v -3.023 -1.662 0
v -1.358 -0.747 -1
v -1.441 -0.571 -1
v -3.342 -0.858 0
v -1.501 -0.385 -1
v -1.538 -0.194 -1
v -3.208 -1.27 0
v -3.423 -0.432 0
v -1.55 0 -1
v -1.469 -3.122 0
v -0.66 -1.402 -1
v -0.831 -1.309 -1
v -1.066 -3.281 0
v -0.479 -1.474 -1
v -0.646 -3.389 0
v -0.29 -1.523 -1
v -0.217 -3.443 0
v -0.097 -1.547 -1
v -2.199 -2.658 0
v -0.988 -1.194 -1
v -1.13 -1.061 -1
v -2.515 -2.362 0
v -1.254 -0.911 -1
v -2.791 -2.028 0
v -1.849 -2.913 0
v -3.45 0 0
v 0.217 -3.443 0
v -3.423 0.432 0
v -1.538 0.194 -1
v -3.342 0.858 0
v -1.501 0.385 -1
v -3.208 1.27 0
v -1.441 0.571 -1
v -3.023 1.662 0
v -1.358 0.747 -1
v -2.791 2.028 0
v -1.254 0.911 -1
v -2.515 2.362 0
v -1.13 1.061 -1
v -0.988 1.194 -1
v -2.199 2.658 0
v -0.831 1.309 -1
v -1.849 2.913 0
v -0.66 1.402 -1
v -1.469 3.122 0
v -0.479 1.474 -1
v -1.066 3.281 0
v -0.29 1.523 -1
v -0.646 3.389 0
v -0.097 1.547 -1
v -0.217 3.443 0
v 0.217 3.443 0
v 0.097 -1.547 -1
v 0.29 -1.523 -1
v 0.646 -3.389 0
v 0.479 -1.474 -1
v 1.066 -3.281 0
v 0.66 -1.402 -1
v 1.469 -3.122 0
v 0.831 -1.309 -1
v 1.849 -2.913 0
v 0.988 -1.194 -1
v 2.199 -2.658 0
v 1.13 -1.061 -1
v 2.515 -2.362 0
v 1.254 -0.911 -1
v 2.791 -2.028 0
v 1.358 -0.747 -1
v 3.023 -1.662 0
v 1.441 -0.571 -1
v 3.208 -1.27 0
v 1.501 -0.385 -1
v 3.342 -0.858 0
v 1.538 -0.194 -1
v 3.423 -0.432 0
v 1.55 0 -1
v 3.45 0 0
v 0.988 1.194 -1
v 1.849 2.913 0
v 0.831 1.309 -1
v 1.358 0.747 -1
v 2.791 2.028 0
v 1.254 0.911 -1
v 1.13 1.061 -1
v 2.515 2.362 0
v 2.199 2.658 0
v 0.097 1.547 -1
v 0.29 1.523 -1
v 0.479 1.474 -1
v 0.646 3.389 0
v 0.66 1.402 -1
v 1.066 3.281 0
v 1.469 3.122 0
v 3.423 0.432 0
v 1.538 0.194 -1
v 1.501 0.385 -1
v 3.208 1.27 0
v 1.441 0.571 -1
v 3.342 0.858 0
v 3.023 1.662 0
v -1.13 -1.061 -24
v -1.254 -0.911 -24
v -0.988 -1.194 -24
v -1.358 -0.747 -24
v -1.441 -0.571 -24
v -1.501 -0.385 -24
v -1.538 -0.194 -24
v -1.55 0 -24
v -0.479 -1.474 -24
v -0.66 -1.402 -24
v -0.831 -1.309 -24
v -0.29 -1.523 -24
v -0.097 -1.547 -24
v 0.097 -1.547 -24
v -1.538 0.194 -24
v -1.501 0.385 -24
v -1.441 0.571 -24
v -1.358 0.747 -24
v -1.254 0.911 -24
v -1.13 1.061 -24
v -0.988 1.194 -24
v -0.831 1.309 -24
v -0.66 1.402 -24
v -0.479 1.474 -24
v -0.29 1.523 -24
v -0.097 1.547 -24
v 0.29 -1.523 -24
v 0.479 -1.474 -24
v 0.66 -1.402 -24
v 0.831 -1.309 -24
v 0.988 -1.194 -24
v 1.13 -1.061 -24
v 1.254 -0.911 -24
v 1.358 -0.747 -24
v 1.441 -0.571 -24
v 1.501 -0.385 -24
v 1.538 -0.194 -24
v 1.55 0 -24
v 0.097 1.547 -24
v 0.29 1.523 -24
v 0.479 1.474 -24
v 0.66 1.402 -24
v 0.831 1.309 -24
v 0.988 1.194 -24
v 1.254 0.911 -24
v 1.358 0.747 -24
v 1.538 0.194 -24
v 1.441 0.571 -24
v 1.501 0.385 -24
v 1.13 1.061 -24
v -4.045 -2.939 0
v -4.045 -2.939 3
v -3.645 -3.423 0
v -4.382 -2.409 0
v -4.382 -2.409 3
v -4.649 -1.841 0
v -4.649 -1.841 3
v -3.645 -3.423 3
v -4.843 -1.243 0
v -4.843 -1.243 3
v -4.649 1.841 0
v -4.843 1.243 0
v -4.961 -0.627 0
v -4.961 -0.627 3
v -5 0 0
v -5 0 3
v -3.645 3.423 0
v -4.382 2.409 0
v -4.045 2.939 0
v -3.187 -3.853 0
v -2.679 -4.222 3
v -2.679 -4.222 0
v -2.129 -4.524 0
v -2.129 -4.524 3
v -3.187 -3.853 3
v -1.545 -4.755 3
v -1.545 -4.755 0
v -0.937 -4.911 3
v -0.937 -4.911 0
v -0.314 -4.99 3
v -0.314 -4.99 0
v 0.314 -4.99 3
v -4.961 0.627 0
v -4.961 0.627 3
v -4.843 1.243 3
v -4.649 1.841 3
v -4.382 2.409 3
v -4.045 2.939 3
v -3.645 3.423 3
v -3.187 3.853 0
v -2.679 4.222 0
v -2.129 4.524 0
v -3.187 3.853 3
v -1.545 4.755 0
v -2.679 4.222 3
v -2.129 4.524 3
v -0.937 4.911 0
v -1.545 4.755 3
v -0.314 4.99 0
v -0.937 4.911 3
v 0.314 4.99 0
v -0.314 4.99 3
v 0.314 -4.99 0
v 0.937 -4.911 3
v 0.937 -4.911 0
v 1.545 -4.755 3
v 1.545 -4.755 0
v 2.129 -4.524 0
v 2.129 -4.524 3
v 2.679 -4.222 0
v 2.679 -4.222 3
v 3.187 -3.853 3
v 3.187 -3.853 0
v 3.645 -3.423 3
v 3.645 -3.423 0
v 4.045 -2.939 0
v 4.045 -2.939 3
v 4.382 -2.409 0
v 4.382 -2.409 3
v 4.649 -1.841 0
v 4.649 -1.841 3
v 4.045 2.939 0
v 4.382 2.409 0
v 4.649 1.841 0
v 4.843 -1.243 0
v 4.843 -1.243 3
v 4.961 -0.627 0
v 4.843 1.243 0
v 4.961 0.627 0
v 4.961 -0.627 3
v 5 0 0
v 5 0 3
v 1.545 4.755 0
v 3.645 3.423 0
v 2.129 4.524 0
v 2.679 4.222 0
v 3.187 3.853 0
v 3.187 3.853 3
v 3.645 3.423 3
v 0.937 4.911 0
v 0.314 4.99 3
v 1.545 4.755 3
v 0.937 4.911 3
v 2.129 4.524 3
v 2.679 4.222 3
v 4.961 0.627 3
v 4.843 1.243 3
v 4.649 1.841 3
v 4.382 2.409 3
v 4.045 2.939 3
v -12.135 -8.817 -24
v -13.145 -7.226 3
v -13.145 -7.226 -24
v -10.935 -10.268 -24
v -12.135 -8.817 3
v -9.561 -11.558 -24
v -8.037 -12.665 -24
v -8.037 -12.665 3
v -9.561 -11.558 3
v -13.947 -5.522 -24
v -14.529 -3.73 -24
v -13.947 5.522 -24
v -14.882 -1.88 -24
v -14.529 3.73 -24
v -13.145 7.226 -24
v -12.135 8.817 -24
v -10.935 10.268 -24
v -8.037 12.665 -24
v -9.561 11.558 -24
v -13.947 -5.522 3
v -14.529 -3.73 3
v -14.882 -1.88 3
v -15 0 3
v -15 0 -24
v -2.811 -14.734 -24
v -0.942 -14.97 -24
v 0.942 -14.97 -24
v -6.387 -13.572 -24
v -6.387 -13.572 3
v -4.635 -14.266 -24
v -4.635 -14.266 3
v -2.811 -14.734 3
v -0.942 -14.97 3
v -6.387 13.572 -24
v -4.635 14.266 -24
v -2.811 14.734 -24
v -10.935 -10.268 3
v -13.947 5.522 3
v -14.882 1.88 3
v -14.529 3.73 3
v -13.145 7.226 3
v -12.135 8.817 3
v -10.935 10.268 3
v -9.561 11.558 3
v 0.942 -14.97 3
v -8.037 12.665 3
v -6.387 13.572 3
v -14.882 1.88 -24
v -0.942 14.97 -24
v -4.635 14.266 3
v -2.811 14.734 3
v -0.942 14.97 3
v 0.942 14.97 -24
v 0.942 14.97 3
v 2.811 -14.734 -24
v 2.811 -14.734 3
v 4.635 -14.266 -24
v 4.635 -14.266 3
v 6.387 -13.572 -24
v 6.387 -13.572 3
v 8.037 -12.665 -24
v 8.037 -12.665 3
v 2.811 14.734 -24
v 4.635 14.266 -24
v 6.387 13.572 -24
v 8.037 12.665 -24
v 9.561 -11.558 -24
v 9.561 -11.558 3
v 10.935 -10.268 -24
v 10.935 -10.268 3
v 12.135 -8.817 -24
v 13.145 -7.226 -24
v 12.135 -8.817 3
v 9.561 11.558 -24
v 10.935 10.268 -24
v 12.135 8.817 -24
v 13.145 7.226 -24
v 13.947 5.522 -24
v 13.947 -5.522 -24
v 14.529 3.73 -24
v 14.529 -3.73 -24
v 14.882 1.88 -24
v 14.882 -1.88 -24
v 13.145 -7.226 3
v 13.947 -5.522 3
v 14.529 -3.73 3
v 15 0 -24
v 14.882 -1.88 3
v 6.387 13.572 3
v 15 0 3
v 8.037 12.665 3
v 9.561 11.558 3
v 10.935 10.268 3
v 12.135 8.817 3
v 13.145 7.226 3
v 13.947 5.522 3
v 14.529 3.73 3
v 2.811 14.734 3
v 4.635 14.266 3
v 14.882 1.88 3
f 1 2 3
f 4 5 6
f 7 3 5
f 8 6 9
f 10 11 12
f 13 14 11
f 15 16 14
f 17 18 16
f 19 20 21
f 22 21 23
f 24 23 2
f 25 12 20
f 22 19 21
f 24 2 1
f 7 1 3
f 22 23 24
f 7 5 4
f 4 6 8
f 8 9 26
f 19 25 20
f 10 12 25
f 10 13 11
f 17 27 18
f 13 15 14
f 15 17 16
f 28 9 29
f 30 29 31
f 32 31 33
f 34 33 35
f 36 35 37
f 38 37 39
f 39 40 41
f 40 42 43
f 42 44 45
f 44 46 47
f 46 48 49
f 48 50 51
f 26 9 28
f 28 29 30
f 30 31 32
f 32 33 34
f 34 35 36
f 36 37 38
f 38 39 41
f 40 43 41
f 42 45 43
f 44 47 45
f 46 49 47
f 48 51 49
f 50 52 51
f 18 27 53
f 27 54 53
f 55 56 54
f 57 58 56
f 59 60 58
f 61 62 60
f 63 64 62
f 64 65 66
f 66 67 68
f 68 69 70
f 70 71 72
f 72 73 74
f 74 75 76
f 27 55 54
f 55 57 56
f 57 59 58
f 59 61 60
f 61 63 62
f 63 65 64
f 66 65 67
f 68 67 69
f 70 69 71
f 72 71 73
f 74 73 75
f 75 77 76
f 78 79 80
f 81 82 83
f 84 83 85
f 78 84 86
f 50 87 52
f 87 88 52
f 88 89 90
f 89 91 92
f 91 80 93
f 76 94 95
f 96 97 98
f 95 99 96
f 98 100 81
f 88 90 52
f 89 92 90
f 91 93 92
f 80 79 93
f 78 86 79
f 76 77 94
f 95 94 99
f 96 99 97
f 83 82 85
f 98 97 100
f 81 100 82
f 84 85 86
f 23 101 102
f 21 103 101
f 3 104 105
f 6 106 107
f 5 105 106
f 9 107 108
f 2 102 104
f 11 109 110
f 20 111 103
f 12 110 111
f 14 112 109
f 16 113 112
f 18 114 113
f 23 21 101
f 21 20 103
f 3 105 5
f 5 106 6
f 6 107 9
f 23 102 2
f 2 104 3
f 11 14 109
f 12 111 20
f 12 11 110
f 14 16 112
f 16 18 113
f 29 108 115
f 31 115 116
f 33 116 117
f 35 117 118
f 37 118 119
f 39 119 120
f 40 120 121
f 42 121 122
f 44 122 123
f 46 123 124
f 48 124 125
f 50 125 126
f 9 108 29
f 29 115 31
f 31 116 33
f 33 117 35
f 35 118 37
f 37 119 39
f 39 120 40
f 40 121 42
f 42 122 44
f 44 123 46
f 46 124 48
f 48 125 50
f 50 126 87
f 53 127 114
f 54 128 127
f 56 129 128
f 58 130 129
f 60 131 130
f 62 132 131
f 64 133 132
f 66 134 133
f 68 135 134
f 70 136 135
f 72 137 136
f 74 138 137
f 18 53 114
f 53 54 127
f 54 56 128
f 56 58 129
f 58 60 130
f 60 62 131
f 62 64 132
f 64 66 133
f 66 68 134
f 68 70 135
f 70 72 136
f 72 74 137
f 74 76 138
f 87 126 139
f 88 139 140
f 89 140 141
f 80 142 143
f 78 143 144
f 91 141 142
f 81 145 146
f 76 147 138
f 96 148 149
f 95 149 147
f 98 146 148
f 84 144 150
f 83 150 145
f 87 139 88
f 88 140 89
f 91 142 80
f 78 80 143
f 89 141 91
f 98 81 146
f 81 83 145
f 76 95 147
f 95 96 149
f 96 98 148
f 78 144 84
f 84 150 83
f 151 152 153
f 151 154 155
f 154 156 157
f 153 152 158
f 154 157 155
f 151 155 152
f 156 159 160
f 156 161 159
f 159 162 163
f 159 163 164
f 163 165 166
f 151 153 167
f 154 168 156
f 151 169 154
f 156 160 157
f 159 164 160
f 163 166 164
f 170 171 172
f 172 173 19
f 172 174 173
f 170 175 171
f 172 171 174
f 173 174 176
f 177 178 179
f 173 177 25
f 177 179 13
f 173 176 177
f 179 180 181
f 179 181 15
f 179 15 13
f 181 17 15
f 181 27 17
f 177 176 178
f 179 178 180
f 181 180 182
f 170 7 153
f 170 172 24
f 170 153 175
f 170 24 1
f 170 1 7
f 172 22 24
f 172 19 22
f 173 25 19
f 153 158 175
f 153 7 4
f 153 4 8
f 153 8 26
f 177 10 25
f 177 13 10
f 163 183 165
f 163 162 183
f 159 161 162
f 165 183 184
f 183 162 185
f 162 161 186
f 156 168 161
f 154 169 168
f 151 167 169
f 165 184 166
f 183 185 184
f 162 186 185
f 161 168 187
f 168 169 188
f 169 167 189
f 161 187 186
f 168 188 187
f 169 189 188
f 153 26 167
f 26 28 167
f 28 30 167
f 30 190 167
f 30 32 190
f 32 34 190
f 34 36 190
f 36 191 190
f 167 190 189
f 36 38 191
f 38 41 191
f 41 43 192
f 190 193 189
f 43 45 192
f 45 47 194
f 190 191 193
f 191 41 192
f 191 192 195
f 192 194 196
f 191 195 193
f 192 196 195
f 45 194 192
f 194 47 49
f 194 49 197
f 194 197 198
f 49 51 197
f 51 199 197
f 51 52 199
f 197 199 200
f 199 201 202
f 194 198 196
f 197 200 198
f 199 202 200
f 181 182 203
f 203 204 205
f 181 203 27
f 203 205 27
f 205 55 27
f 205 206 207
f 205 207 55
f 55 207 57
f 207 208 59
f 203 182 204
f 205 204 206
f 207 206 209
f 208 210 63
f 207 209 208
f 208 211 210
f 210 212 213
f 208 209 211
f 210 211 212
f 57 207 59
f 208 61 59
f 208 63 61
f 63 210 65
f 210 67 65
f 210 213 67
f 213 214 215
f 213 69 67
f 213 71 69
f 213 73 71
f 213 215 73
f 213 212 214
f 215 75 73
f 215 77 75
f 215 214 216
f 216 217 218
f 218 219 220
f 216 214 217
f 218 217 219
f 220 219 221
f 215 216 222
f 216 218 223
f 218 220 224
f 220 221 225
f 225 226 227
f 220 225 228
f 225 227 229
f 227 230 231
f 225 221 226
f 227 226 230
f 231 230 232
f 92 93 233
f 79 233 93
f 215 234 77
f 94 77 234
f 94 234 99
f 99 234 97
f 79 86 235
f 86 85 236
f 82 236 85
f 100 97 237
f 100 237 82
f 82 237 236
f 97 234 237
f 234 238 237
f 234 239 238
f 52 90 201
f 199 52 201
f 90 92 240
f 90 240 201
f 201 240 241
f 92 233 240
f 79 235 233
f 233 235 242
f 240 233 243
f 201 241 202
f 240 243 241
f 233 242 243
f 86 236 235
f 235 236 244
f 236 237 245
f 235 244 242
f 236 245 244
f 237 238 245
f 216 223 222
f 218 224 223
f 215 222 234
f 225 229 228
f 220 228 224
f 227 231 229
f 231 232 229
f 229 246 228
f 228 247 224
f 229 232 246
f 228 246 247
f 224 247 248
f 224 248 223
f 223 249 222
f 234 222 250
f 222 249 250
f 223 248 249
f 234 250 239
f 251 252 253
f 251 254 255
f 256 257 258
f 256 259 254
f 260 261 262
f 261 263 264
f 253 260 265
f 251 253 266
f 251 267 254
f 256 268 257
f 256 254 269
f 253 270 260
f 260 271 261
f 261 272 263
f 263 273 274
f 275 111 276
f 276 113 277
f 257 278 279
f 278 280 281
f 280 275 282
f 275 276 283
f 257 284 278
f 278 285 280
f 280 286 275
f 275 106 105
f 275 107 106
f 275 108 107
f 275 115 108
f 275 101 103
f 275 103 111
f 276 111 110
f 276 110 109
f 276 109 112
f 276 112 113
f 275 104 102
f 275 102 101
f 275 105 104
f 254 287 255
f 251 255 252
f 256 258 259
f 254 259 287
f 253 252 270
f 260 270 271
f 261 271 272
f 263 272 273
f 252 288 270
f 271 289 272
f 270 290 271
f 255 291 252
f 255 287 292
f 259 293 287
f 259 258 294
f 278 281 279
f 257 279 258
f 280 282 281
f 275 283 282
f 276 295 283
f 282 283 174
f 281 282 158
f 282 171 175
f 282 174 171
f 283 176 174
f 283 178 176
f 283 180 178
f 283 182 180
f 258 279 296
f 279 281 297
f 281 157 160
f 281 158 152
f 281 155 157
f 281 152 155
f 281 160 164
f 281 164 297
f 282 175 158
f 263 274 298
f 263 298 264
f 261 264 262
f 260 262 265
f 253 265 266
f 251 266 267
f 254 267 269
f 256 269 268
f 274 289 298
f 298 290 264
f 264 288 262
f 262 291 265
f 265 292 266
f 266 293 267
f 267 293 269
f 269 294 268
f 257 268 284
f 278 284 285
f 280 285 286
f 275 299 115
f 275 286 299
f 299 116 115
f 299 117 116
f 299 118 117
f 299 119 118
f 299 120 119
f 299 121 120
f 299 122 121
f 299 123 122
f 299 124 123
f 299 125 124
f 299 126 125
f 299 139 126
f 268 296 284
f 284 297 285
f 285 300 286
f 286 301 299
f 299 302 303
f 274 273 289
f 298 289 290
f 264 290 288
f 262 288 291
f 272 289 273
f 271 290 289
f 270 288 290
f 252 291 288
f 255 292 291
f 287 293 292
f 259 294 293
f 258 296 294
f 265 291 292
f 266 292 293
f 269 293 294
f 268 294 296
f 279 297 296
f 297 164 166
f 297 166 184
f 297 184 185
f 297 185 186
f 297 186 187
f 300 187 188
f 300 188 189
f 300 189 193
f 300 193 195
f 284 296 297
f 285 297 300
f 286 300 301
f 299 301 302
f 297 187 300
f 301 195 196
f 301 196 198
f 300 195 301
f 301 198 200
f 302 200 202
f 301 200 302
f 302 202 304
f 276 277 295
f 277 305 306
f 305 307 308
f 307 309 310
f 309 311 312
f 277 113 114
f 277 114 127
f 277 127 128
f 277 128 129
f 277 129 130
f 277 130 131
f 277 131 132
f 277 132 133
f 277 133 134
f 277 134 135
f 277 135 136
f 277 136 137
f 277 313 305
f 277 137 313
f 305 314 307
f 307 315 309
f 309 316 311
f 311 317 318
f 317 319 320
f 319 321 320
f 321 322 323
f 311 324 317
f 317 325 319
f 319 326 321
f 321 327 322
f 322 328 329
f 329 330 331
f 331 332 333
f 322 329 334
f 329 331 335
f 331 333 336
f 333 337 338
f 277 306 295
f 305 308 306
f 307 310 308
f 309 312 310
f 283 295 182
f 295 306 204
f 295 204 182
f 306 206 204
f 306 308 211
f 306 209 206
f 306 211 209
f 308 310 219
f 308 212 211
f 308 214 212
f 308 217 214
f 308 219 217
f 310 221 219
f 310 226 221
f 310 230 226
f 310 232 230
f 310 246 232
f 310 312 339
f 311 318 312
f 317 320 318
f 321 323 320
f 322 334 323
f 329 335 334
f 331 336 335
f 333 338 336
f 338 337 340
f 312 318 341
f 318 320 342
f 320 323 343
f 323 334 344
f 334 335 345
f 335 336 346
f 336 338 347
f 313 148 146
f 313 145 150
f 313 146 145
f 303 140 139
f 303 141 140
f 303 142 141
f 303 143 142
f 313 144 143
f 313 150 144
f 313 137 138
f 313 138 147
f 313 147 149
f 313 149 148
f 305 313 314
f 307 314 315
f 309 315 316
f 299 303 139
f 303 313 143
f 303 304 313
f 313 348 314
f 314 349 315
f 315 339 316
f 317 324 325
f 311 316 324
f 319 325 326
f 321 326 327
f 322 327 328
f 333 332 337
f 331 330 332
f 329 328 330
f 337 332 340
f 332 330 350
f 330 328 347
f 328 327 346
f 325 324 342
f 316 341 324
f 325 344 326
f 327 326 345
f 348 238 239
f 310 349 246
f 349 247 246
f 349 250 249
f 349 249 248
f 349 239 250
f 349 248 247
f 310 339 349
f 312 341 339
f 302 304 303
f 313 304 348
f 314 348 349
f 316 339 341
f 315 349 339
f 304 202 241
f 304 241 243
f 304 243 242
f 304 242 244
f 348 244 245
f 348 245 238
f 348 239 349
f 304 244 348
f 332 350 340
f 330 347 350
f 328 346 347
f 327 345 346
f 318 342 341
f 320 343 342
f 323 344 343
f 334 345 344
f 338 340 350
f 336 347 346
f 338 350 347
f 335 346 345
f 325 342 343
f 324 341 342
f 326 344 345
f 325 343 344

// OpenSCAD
$fn = 50;


difference() {
	union() {
		translate(v = [0, 0, -24.0000000000]) {
			cylinder(h = 27, r = 15.0000000000);
		}
	}
	union() {
		translate(v = [0, 0, 0]) {
			rotate(a = [0, 0, 0]) {
				difference() {
					union() {
						translate(v = [0, 0, -27.0000000000]) {
							cylinder(h = 27, r = 1.2500000000);
						}
						translate(v = [0, 0, -1.0000000000]) {
							cylinder(h = 1.0000000000, r1 = 1.5500000000, r2 = 3.4500000000);
						}
						translate(v = [0, 0, -27.0000000000]) {
							cylinder(h = 27, r = 1.5500000000);
						}
						translate(v = [0, 0, -27.0000000000]) {
							cylinder(h = 27, r = 1.2500000000);
						}
					}
					union();
				}
			}
		}
		#cylinder(h = 3, r = 5.0000000000);
	}
}
